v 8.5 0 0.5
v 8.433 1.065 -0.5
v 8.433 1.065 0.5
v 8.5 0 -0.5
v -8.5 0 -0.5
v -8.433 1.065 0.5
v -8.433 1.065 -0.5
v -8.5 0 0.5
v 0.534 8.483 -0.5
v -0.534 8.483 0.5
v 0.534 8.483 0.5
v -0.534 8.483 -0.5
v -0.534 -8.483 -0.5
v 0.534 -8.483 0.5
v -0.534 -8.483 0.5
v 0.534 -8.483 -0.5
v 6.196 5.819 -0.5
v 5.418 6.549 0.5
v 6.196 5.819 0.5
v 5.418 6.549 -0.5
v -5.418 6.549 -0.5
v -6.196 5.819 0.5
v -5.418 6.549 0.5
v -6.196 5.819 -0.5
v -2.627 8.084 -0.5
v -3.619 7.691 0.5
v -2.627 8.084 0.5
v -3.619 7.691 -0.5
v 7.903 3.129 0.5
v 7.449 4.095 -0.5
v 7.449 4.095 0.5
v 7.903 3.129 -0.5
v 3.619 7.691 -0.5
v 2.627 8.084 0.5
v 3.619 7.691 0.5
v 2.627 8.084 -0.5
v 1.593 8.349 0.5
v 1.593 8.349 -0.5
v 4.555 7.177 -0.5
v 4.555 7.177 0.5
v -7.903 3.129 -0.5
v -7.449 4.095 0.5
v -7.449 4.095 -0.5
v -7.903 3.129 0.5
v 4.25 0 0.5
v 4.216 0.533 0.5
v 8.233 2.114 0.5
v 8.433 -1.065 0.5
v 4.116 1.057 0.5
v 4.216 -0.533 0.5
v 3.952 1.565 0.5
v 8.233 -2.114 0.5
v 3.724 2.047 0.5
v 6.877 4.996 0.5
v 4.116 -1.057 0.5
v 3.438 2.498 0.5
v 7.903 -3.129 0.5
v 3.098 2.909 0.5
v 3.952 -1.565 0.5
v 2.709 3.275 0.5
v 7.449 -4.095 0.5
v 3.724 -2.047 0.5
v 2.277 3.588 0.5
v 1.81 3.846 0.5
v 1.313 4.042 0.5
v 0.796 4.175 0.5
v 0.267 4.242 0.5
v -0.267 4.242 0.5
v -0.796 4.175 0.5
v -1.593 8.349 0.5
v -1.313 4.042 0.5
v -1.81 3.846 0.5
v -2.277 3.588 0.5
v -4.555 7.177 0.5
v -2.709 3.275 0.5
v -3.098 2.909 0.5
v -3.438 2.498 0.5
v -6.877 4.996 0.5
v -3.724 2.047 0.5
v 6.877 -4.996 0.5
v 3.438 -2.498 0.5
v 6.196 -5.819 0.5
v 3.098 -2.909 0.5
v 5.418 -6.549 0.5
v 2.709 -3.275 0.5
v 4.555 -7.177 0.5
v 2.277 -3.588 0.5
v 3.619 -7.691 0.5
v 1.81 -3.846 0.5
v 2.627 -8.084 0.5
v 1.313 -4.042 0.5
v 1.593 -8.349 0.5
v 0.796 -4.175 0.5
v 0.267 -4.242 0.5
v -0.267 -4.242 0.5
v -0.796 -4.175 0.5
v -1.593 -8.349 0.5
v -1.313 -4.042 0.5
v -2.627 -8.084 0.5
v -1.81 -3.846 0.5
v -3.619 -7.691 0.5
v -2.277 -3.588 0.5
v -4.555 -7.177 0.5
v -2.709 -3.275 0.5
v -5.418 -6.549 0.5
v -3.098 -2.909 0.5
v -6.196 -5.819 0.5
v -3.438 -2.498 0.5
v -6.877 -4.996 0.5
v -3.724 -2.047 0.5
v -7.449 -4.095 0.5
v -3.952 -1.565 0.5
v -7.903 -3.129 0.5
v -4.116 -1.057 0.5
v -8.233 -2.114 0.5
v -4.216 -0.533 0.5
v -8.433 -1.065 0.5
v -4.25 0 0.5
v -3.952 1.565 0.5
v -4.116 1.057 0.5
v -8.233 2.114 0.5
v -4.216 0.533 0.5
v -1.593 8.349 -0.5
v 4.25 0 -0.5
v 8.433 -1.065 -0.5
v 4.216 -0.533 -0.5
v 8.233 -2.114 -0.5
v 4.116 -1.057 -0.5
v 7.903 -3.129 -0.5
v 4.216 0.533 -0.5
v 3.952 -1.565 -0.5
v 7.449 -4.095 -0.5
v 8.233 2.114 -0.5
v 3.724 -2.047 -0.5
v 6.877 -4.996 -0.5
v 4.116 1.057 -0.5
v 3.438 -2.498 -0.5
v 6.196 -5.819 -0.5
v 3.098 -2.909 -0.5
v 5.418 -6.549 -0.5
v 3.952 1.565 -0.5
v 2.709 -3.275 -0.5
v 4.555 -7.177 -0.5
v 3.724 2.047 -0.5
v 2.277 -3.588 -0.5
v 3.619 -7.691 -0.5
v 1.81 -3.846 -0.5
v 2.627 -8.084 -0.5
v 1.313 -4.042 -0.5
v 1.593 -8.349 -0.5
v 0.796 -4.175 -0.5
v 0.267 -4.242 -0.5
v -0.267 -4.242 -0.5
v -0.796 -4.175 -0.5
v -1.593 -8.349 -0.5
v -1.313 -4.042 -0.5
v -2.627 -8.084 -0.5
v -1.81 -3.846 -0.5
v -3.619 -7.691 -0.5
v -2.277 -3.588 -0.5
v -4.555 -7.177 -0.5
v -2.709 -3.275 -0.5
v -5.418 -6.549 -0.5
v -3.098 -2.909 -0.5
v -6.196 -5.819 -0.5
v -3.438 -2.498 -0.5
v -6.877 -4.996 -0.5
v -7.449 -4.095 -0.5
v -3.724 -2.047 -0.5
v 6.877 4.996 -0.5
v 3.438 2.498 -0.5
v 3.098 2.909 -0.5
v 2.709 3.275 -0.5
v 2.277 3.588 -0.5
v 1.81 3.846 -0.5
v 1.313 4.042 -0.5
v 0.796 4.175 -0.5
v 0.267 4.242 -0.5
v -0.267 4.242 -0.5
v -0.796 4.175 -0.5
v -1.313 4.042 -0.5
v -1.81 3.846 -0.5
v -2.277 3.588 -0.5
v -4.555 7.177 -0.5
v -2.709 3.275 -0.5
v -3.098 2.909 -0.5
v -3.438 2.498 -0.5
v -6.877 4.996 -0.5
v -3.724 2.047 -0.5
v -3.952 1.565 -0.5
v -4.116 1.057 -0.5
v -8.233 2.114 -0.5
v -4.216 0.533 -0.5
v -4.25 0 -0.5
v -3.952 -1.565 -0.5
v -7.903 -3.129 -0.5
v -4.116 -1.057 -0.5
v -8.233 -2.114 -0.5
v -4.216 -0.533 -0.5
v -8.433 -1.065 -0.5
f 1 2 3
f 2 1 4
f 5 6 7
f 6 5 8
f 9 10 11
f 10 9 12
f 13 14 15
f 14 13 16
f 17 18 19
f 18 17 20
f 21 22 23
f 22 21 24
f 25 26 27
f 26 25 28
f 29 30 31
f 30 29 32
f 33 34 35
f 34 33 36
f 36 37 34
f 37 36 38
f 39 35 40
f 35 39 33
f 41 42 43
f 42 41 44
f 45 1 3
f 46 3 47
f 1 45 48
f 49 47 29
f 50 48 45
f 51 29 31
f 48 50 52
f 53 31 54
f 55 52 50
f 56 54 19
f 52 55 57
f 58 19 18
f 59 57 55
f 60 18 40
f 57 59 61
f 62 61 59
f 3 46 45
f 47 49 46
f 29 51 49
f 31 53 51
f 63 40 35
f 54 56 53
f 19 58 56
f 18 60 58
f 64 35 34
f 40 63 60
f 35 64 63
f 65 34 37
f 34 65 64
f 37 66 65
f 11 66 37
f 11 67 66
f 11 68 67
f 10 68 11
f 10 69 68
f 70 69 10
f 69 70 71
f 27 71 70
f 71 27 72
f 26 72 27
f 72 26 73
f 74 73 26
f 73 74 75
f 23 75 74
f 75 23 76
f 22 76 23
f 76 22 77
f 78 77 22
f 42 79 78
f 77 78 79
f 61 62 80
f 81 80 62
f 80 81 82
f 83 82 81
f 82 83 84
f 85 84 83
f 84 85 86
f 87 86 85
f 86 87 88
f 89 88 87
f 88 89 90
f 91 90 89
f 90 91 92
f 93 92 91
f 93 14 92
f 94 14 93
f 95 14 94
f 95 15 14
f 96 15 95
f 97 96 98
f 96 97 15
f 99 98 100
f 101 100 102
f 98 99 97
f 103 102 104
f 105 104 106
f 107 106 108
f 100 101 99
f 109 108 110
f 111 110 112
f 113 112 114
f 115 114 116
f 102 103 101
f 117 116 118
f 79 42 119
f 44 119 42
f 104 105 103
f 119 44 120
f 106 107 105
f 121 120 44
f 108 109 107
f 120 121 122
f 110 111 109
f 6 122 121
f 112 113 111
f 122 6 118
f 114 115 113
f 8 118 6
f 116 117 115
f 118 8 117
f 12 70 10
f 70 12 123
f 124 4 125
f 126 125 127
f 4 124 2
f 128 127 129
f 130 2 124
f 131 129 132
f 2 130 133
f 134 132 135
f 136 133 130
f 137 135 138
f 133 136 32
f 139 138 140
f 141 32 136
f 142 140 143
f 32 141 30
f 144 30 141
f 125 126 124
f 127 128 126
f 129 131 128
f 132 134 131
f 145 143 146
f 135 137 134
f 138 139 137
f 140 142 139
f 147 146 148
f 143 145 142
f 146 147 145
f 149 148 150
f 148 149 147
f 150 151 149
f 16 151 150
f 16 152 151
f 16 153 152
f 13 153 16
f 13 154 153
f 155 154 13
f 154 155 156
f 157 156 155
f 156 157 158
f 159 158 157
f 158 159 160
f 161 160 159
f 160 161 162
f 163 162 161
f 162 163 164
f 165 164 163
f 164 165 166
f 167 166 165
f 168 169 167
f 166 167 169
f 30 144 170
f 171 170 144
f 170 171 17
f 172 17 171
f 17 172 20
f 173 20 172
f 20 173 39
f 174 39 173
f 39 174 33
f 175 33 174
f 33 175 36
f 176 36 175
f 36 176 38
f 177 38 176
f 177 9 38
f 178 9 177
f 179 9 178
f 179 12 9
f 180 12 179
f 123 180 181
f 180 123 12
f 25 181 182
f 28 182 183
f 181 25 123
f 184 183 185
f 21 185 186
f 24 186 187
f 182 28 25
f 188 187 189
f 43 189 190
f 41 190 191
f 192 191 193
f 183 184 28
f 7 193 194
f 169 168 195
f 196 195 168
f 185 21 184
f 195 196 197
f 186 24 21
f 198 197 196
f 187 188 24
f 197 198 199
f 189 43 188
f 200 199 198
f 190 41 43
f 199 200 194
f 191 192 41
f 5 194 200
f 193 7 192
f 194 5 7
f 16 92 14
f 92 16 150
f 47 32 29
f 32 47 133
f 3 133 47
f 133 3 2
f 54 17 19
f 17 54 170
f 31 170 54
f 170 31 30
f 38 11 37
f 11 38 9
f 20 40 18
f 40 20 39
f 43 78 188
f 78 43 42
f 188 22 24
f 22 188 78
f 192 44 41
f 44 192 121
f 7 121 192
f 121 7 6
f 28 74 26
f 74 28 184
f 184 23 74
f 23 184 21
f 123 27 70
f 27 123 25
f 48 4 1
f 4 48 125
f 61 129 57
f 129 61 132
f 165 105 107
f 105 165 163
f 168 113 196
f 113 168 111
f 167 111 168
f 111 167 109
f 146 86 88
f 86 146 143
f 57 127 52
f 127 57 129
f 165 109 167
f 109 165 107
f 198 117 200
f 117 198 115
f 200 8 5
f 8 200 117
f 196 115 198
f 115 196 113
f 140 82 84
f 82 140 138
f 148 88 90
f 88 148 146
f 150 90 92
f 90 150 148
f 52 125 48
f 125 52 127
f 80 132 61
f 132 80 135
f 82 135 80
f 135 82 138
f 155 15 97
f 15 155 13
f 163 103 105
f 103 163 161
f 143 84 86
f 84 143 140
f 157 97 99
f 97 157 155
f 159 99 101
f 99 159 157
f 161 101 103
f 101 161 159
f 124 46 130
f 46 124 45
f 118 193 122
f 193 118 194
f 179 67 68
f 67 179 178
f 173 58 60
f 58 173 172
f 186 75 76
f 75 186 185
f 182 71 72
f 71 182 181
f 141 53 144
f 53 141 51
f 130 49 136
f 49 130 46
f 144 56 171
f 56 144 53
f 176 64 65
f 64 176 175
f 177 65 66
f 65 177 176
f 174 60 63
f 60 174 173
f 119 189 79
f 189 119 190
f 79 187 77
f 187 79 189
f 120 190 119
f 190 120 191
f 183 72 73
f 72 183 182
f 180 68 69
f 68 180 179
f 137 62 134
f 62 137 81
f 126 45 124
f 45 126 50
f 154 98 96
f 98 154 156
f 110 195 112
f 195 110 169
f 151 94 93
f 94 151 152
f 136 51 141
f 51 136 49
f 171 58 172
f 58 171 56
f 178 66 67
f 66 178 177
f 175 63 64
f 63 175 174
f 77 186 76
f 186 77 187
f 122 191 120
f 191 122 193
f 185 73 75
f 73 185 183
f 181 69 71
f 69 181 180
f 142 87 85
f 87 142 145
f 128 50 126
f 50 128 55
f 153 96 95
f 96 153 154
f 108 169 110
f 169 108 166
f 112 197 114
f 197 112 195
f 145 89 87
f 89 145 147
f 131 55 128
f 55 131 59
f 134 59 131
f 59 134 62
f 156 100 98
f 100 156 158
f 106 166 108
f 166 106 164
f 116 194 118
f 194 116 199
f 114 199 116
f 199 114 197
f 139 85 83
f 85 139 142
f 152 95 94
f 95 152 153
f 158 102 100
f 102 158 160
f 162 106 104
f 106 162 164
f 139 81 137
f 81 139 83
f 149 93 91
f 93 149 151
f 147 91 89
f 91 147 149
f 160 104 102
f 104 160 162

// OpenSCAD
$fn = 50;


difference() {
	union() {
		translate(v = [0, 0, -0.5000000000]) {
			cylinder(h = 1, r = 8.5000000000);
		}
	}
	union() {
		translate(v = [0, 0, -100.0000000000]) {
			cylinder(h = 200, r = 4.2500000000);
		}
	}
}
